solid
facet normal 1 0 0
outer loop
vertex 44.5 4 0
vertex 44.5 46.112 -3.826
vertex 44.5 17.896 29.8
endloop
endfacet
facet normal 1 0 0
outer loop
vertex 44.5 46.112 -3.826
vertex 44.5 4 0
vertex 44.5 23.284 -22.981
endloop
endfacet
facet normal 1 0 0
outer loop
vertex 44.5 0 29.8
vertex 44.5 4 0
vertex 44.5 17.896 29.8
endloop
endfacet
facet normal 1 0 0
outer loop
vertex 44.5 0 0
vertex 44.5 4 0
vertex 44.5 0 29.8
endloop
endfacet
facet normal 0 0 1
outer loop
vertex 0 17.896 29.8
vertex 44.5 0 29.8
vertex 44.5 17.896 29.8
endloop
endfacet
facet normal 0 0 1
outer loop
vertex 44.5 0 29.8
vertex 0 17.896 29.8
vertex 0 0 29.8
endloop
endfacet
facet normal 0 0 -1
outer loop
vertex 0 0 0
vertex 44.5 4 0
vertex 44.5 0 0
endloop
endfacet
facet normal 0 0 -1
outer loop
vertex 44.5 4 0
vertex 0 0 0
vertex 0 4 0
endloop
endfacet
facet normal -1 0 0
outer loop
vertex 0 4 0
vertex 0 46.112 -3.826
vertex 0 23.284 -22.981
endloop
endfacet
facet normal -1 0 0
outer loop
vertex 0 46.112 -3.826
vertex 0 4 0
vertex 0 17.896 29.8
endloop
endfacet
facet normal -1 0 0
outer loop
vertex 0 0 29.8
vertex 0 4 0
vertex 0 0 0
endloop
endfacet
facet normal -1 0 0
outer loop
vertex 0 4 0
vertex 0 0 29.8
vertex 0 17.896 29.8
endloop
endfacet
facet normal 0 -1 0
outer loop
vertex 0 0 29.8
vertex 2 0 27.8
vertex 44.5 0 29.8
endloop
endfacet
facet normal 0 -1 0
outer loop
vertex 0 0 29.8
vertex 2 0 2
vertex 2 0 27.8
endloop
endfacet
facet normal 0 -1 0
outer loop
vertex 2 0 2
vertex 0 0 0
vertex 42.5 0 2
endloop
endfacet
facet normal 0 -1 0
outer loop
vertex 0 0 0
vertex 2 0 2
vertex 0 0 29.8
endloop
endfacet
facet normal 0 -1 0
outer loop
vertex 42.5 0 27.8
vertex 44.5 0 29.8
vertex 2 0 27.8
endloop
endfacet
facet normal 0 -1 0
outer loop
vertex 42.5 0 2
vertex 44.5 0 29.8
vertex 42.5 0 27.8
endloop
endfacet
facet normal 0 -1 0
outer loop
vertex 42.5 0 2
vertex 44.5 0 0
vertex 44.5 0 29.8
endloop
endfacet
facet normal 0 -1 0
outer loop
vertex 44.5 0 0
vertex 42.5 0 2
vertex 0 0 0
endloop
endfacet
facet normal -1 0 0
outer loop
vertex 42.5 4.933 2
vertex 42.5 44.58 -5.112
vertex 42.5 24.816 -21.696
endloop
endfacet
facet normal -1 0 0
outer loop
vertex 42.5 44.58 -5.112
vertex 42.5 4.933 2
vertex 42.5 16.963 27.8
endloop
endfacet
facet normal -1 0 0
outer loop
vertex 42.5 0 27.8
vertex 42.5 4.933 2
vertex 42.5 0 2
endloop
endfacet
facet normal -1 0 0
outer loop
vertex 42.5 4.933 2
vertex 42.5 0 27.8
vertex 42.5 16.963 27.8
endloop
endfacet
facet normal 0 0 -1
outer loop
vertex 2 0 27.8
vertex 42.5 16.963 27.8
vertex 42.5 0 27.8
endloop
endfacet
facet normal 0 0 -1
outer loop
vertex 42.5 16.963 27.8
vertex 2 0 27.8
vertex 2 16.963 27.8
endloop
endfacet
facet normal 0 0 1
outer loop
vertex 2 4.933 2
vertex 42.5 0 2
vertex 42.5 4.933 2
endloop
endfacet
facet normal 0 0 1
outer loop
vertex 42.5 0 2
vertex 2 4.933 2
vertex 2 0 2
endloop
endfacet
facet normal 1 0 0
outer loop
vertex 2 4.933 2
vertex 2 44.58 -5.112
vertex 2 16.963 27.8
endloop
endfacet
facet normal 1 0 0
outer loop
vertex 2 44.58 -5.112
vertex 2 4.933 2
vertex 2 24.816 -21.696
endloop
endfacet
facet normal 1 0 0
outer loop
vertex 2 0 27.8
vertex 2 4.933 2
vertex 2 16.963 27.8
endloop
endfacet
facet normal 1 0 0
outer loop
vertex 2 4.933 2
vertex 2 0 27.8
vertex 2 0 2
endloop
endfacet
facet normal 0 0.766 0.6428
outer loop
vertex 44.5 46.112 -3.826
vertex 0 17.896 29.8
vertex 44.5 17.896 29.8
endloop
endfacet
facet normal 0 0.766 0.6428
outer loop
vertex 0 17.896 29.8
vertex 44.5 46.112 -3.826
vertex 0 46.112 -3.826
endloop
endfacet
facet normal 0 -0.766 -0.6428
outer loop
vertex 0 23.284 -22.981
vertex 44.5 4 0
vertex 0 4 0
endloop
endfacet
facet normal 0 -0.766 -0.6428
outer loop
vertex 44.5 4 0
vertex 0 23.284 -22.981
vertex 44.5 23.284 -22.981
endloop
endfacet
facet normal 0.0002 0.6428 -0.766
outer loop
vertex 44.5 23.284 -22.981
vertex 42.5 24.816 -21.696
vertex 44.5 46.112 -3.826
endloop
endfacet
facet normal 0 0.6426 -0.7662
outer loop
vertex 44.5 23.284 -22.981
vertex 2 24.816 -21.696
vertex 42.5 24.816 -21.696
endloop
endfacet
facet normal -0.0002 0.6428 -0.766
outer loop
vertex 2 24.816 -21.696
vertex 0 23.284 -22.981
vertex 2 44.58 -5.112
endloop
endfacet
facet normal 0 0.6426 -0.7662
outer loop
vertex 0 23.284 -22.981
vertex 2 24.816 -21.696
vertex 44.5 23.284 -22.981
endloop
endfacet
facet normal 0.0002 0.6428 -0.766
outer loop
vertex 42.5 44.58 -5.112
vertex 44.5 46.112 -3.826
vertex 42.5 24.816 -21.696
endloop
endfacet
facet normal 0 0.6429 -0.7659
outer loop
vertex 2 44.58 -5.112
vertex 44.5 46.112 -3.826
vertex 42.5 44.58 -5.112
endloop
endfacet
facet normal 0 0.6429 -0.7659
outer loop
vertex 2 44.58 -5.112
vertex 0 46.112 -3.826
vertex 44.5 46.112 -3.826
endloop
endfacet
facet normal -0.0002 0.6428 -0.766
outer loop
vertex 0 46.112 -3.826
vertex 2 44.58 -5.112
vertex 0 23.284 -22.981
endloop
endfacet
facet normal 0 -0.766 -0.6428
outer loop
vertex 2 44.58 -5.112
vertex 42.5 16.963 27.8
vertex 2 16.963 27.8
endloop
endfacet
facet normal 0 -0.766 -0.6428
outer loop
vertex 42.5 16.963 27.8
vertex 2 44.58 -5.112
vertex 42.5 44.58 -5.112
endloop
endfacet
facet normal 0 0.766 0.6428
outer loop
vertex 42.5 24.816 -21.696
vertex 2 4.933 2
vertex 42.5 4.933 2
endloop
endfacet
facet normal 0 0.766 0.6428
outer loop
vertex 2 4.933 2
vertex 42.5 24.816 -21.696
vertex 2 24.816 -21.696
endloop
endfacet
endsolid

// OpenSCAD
//

wallSize = 2;
spoutWidth = 40.5;
spoutHeight = 25.8;
spoutWidthOuter = spoutWidth+wallSize*2;
spoutHeightOuter = spoutHeight+wallSize*2;

module Conduit(length=100, angle=45) {
    alpha = 90 - (angle / 2);
    b = spoutHeightOuter / tan(alpha);
    d = sin(alpha) * b;
    difference() {
        cube([spoutWidthOuter, length+b, spoutHeightOuter]);
        translate([wallSize, -1, wallSize])
        cube([spoutWidth, length+b+2, spoutHeight]);
        translate([-1, length, 0])
        rotate([-angle/2, 0, 0])
        cube([spoutWidthOuter+2, d+1, spoutHeightOuter/sin(alpha)+1]);
    }
}


attachLen = 4;
spoutLen = 30;
angle = 50;

Conduit(attachLen, angle);
drop = sin(angle) * spoutLen;
shift = cos(angle) * spoutLen + attachLen;
mirror([0, 1, 0])
translate([0, -shift, -drop])
rotate([angle, 0, 0])
Conduit(spoutLen, angle);
